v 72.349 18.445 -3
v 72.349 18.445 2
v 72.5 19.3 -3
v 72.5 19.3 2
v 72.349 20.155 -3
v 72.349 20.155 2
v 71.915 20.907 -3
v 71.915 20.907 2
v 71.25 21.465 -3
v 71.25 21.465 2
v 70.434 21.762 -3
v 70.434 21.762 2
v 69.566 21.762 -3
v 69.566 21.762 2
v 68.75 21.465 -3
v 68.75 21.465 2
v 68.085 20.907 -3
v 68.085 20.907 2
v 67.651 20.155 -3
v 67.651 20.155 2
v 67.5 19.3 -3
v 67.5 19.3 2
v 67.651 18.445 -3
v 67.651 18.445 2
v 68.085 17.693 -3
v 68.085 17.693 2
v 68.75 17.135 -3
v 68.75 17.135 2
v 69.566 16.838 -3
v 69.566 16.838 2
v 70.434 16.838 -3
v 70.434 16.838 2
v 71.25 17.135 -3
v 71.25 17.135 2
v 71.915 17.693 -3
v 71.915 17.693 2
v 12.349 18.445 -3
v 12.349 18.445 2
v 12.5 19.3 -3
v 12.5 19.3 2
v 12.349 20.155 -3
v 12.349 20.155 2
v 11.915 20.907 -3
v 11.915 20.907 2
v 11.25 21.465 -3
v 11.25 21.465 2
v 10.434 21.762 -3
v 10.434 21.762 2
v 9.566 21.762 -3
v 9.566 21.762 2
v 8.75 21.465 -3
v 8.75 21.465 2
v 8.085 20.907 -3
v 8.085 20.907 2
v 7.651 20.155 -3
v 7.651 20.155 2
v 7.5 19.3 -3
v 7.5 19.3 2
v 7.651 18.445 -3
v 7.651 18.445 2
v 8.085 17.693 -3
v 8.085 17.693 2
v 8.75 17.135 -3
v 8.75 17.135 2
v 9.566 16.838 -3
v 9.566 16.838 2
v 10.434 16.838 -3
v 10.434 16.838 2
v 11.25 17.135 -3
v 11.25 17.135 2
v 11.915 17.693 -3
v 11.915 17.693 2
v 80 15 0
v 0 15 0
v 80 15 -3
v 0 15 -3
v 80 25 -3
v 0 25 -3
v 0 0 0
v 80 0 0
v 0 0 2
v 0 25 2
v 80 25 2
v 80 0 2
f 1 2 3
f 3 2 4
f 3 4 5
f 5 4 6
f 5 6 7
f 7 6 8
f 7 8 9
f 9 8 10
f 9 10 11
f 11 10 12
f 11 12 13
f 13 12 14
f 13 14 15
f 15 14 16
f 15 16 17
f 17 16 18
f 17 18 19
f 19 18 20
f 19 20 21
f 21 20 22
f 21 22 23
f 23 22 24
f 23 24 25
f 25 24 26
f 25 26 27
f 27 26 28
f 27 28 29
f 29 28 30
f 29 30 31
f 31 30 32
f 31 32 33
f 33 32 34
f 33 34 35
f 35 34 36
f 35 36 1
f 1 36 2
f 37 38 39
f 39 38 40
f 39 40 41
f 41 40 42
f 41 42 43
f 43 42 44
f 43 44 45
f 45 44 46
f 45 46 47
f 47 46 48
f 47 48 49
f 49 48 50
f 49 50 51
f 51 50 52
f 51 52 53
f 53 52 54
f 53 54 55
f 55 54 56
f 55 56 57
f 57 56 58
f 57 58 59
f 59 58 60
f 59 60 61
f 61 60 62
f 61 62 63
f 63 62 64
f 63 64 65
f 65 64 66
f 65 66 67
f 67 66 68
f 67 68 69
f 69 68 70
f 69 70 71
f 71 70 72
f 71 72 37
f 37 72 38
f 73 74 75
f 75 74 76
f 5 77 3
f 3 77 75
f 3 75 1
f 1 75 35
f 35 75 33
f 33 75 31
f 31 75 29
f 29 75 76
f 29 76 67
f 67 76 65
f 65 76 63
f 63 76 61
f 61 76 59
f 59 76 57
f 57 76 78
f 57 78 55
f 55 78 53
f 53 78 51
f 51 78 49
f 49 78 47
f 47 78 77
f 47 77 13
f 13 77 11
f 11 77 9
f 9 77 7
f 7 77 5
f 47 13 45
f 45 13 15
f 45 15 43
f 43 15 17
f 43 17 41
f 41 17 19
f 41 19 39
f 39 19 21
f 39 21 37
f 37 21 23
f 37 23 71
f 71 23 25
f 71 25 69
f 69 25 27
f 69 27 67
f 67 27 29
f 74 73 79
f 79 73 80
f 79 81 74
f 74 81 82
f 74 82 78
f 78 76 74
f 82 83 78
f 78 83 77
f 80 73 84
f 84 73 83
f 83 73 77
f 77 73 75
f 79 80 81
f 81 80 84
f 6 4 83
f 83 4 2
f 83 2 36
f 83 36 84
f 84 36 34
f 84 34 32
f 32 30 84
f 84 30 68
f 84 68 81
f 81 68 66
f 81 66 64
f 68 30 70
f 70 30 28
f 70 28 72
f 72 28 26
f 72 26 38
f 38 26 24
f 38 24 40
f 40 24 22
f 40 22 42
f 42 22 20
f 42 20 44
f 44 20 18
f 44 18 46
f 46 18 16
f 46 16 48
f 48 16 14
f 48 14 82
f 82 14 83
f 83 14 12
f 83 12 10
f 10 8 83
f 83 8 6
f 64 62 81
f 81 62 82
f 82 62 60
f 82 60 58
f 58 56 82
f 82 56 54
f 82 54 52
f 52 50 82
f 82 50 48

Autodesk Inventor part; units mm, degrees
ref_plane "YZ Plane" through (0, 0, 0) normal (1, 0, 0) x (0, 1, 0)
ref_plane "XZ Plane" through (0, 0, 0) normal (0, 1, 0) x (-1, 0, 0)
ref_plane "XY Plane" through (0, 0, 0) normal (0, 0, 1) x (1, 0, 0)
ref_plane "Plano de trabajo1" through (0, 0, 0) normal (0, 0, 1) x (1, 0, 0)
sketch "Boceto1" plane through (0, 0, 0) normal (0, 0, 1) x (1, 0, 0)
  circle A0 centre (70, 9.3) radius 2.5 projected
  circle A1 centre (10, 9.3) radius 2.5 projected
  arc A2 (80, 12) -> (77, 15) centre (77, 12) ccw projected
  line L0 (3, 15) -> (77, 15) projected
  arc A3 (3, 15) -> (0, 12) centre (3, 12) ccw projected
  line L1 (0, 12) -> (0, -2) projected
  line L2 (0, -2) -> (0.1716, -2) projected
  arc A4 (3, 0) -> (0.1716, -2) centre (3, -3) ccw projected
  line L3 (77, 0) -> (3, 0) projected
  arc A5 (79.8284, -2) -> (77, 0) centre (77, -3) ccw projected
  line L4 (79.8284, -2) -> (80, -2) projected
  line L5 (80, -2) -> (80, 12) projected
  line L6 (0, 0) -> (80, 0)
  line L7 (80, 0) -> (80, 25)
  line L8 (80, 25) -> (0, 25)
  line L9 (0, 25) -> (0, 0)
  point P0 (0, 12)
  dimension "d0" = 25
extrude "Extrusión1" add sketch "Boceto1" along normal blind 2 contours A0 | A1 | L5 L6 L3 L1 A3 L0 A2 | A2 L0 A3 L9 L8 L7
sketch "Boceto2" plane through (0, 0, 0) normal (0, 0, -1) x (-1, 0, 0)
  circle A0 centre (-10, 9.3) radius 2.5 projected
  circle A1 centre (-70, 9.3) radius 2.5 projected
  line L0 (-10, 9.3) -> (-10, 19.3)
  line L1 (-70, 9.3) -> (-70, 19.3)
  point P0 (0, 0)
  dimension "d3" = 10
  dimension "d4" = 10
sketch "Boceto3" plane through (0, 0, 0) normal (0, 0, -1) x (-1, 0, 0)
  arc A0 (-77, 15) -> (-80, 12) centre (-77, 12) ccw projected
  line L0 (-80, -2) -> (-80, 12) projected
  line L1 (-80, -2) -> (0, -2) projected
  line L2 (0, -2) -> (0, 12) projected
  arc A1 (0, 12) -> (-3, 15) centre (-3, 12) ccw projected
  line L3 (-77, 15) -> (-3, 15) projected
  circle A2 centre (-70, 9.3) radius 2.5 projected
  circle A3 centre (-10, 9.3) radius 2.5 projected
  line L4 (-80, 25) -> (0, 25) projected
  line L5 (-80, 0) -> (-80, 25) projected
  line L6 (0, 0) -> (-80, 0) projected
  line L7 (0, 25) -> (0, 0) projected
  line L8 (-80, 25) -> (0, 25)
  line L9 (0, 25) -> (0, 15)
  line L10 (0, 15) -> (-80, 15)
  line L11 (-80, 15) -> (-80, 25)
  point P0 (-77, 15)
  point P1 (-3, 15)
  dimension "d14" = 10
extrude "Extrusión2" add sketch "Boceto3" along normal blind 3 contours L10 L5 L4 L7 L3
hole "Agujero1" at (70, 19.3, 0) at (10, 19.3, 0) direction (0, 0, 1) diameter 5 end through all both
properties part number "Adaptador"
